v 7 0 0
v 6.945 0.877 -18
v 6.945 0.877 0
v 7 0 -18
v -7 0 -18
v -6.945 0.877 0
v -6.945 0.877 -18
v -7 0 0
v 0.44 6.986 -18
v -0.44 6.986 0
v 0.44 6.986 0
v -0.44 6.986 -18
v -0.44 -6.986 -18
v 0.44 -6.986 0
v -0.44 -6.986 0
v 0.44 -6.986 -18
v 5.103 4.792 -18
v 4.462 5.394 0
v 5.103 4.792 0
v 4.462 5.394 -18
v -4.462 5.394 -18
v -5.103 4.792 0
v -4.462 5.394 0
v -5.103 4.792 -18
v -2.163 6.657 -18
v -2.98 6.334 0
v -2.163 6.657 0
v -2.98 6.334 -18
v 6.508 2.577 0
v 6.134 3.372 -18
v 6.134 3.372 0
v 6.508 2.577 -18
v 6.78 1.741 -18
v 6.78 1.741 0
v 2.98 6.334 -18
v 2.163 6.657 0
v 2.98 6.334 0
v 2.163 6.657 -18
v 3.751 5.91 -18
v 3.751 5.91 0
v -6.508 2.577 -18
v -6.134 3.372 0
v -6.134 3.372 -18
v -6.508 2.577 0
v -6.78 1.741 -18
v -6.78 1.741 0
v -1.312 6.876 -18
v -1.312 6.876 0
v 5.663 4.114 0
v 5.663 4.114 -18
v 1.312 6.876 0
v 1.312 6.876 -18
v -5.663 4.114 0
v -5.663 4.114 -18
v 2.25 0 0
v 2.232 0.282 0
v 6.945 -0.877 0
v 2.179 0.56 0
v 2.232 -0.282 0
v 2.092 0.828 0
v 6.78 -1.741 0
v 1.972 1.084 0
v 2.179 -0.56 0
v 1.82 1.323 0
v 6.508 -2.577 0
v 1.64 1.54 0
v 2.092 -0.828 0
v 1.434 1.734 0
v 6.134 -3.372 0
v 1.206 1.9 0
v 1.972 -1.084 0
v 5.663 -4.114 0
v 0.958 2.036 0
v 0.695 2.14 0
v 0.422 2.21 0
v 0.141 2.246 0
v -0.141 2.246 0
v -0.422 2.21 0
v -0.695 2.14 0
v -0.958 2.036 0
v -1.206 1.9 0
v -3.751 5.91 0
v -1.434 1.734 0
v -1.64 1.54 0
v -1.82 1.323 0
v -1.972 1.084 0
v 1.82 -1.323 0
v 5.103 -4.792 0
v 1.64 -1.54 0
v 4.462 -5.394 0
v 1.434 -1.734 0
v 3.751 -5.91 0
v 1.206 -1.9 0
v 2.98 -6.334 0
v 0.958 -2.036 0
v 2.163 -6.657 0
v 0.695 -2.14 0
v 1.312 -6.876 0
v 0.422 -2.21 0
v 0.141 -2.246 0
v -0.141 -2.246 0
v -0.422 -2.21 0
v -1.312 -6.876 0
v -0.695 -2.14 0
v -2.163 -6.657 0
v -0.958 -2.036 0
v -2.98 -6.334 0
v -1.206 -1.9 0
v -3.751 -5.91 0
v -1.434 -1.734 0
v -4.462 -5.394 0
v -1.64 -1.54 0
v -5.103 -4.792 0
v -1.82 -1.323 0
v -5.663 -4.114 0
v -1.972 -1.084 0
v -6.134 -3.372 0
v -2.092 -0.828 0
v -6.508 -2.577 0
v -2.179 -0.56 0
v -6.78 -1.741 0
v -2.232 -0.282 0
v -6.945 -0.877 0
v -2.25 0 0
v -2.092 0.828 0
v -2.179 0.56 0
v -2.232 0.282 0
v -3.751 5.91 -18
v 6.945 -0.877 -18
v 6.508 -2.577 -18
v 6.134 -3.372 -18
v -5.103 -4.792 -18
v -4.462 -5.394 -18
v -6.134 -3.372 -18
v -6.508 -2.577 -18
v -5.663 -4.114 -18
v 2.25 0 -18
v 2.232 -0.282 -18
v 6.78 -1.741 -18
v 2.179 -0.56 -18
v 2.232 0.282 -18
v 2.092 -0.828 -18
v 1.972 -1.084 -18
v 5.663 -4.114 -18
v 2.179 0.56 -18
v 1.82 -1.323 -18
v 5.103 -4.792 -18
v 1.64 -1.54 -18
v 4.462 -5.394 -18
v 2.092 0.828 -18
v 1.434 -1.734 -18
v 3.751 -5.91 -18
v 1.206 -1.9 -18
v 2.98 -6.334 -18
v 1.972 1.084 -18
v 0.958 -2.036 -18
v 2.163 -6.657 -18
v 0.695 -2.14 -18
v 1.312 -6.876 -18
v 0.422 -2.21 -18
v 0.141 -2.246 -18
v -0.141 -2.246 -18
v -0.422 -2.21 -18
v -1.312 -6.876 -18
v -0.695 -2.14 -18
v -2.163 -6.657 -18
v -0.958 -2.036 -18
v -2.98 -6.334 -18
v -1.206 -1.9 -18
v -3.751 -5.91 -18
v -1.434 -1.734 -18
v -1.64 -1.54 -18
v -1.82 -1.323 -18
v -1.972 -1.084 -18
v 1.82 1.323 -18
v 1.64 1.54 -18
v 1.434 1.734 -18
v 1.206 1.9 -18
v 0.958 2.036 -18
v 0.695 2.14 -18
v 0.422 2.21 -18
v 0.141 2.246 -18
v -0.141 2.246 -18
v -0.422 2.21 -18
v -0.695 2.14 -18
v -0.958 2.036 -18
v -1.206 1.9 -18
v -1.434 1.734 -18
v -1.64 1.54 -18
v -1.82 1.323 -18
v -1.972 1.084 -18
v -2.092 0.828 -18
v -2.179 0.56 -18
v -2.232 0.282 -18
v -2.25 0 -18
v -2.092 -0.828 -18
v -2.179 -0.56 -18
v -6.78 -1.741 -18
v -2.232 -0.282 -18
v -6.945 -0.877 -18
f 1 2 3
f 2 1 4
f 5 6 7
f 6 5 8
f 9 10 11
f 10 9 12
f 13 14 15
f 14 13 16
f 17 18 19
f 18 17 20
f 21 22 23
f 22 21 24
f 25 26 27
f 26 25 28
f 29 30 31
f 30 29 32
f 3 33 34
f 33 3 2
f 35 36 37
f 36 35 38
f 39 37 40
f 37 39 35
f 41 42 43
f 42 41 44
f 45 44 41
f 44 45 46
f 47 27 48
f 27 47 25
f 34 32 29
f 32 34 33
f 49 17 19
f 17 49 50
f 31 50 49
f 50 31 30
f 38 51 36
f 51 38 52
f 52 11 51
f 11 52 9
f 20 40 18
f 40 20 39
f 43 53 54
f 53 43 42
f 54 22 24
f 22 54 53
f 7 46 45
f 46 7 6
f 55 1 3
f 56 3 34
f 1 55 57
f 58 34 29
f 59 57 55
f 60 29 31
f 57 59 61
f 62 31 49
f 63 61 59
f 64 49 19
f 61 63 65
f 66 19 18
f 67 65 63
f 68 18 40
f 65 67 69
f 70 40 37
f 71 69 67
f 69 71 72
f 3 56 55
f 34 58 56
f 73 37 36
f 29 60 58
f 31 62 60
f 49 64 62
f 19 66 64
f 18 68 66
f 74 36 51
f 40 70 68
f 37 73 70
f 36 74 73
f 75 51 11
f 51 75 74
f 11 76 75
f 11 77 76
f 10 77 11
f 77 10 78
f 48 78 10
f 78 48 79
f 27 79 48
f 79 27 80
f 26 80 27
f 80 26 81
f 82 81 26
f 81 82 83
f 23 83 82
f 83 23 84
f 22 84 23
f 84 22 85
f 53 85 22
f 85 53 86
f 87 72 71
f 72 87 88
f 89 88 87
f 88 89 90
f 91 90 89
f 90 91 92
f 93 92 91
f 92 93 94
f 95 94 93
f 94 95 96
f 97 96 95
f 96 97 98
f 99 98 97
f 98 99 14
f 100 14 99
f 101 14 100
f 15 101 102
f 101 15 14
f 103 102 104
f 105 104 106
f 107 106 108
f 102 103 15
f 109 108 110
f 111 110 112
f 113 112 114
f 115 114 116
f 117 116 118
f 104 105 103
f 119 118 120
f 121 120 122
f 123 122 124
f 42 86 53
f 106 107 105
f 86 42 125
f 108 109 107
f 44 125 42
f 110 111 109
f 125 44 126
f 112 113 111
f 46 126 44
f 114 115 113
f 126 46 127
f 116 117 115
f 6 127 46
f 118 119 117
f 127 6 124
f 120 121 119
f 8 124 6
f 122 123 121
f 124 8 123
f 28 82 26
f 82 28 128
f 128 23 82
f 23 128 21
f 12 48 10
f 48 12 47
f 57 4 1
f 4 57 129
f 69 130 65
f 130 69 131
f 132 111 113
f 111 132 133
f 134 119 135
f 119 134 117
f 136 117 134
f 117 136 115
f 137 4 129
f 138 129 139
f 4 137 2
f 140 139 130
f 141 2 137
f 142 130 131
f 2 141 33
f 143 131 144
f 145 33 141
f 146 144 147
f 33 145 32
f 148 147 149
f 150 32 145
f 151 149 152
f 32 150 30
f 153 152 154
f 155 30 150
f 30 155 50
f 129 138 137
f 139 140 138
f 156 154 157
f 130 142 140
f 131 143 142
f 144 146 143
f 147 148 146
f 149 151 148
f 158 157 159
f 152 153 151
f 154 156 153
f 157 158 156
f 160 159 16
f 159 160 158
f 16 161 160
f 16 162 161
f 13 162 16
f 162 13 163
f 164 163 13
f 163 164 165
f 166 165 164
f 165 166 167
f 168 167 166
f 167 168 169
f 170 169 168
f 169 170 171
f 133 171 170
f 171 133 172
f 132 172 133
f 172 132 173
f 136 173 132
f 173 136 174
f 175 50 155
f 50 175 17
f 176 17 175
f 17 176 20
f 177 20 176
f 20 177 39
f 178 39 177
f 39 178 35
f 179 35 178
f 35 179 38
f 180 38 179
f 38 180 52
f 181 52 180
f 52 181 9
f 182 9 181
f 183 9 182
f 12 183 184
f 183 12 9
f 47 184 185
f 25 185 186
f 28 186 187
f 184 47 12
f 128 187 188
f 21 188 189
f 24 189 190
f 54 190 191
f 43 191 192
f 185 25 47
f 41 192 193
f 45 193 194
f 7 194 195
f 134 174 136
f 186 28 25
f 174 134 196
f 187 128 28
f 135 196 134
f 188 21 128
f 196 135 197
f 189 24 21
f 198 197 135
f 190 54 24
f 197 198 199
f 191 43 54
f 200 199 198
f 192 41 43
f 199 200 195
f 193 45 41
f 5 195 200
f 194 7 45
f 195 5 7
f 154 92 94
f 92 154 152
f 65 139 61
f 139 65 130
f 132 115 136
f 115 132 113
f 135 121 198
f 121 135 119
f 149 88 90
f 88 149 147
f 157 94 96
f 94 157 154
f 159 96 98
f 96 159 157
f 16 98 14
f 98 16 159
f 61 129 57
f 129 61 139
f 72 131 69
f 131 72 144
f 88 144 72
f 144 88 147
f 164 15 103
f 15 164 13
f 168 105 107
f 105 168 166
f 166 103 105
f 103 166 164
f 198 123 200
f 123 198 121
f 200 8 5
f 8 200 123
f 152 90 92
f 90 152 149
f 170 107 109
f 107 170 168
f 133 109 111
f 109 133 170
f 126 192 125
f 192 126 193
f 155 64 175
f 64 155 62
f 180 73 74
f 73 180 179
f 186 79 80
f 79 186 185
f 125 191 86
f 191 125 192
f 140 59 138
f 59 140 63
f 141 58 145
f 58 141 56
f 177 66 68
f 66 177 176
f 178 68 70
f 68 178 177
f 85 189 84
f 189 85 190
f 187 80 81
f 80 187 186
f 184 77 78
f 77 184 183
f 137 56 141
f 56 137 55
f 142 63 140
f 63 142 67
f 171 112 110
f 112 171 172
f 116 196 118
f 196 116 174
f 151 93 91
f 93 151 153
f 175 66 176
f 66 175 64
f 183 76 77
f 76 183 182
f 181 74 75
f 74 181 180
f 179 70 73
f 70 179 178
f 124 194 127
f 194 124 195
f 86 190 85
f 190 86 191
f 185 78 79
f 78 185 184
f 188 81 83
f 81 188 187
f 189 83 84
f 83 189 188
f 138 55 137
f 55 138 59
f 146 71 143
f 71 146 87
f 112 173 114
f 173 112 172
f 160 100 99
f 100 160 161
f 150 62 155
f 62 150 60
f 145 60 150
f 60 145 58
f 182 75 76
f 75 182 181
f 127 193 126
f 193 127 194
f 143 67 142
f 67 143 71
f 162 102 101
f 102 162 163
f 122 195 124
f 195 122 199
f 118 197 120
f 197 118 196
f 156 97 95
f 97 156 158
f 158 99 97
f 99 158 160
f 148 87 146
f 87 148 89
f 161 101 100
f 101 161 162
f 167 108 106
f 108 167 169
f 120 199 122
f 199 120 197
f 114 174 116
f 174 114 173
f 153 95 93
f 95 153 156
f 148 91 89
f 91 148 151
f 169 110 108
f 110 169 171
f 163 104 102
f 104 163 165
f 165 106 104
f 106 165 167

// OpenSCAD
$fn = 50;


difference() {
	union() {
		translate(v = [0, 0, -18.0000000000]) {
			cylinder(h = 18, r = 7.0000000000);
		}
		cylinder(h = 0, r = 13.0000000000);
	}
	union() {
		#translate(v = [0, 0, -18]) {
			cylinder(h = 18, r = 2.2500000000);
		}
	}
}
